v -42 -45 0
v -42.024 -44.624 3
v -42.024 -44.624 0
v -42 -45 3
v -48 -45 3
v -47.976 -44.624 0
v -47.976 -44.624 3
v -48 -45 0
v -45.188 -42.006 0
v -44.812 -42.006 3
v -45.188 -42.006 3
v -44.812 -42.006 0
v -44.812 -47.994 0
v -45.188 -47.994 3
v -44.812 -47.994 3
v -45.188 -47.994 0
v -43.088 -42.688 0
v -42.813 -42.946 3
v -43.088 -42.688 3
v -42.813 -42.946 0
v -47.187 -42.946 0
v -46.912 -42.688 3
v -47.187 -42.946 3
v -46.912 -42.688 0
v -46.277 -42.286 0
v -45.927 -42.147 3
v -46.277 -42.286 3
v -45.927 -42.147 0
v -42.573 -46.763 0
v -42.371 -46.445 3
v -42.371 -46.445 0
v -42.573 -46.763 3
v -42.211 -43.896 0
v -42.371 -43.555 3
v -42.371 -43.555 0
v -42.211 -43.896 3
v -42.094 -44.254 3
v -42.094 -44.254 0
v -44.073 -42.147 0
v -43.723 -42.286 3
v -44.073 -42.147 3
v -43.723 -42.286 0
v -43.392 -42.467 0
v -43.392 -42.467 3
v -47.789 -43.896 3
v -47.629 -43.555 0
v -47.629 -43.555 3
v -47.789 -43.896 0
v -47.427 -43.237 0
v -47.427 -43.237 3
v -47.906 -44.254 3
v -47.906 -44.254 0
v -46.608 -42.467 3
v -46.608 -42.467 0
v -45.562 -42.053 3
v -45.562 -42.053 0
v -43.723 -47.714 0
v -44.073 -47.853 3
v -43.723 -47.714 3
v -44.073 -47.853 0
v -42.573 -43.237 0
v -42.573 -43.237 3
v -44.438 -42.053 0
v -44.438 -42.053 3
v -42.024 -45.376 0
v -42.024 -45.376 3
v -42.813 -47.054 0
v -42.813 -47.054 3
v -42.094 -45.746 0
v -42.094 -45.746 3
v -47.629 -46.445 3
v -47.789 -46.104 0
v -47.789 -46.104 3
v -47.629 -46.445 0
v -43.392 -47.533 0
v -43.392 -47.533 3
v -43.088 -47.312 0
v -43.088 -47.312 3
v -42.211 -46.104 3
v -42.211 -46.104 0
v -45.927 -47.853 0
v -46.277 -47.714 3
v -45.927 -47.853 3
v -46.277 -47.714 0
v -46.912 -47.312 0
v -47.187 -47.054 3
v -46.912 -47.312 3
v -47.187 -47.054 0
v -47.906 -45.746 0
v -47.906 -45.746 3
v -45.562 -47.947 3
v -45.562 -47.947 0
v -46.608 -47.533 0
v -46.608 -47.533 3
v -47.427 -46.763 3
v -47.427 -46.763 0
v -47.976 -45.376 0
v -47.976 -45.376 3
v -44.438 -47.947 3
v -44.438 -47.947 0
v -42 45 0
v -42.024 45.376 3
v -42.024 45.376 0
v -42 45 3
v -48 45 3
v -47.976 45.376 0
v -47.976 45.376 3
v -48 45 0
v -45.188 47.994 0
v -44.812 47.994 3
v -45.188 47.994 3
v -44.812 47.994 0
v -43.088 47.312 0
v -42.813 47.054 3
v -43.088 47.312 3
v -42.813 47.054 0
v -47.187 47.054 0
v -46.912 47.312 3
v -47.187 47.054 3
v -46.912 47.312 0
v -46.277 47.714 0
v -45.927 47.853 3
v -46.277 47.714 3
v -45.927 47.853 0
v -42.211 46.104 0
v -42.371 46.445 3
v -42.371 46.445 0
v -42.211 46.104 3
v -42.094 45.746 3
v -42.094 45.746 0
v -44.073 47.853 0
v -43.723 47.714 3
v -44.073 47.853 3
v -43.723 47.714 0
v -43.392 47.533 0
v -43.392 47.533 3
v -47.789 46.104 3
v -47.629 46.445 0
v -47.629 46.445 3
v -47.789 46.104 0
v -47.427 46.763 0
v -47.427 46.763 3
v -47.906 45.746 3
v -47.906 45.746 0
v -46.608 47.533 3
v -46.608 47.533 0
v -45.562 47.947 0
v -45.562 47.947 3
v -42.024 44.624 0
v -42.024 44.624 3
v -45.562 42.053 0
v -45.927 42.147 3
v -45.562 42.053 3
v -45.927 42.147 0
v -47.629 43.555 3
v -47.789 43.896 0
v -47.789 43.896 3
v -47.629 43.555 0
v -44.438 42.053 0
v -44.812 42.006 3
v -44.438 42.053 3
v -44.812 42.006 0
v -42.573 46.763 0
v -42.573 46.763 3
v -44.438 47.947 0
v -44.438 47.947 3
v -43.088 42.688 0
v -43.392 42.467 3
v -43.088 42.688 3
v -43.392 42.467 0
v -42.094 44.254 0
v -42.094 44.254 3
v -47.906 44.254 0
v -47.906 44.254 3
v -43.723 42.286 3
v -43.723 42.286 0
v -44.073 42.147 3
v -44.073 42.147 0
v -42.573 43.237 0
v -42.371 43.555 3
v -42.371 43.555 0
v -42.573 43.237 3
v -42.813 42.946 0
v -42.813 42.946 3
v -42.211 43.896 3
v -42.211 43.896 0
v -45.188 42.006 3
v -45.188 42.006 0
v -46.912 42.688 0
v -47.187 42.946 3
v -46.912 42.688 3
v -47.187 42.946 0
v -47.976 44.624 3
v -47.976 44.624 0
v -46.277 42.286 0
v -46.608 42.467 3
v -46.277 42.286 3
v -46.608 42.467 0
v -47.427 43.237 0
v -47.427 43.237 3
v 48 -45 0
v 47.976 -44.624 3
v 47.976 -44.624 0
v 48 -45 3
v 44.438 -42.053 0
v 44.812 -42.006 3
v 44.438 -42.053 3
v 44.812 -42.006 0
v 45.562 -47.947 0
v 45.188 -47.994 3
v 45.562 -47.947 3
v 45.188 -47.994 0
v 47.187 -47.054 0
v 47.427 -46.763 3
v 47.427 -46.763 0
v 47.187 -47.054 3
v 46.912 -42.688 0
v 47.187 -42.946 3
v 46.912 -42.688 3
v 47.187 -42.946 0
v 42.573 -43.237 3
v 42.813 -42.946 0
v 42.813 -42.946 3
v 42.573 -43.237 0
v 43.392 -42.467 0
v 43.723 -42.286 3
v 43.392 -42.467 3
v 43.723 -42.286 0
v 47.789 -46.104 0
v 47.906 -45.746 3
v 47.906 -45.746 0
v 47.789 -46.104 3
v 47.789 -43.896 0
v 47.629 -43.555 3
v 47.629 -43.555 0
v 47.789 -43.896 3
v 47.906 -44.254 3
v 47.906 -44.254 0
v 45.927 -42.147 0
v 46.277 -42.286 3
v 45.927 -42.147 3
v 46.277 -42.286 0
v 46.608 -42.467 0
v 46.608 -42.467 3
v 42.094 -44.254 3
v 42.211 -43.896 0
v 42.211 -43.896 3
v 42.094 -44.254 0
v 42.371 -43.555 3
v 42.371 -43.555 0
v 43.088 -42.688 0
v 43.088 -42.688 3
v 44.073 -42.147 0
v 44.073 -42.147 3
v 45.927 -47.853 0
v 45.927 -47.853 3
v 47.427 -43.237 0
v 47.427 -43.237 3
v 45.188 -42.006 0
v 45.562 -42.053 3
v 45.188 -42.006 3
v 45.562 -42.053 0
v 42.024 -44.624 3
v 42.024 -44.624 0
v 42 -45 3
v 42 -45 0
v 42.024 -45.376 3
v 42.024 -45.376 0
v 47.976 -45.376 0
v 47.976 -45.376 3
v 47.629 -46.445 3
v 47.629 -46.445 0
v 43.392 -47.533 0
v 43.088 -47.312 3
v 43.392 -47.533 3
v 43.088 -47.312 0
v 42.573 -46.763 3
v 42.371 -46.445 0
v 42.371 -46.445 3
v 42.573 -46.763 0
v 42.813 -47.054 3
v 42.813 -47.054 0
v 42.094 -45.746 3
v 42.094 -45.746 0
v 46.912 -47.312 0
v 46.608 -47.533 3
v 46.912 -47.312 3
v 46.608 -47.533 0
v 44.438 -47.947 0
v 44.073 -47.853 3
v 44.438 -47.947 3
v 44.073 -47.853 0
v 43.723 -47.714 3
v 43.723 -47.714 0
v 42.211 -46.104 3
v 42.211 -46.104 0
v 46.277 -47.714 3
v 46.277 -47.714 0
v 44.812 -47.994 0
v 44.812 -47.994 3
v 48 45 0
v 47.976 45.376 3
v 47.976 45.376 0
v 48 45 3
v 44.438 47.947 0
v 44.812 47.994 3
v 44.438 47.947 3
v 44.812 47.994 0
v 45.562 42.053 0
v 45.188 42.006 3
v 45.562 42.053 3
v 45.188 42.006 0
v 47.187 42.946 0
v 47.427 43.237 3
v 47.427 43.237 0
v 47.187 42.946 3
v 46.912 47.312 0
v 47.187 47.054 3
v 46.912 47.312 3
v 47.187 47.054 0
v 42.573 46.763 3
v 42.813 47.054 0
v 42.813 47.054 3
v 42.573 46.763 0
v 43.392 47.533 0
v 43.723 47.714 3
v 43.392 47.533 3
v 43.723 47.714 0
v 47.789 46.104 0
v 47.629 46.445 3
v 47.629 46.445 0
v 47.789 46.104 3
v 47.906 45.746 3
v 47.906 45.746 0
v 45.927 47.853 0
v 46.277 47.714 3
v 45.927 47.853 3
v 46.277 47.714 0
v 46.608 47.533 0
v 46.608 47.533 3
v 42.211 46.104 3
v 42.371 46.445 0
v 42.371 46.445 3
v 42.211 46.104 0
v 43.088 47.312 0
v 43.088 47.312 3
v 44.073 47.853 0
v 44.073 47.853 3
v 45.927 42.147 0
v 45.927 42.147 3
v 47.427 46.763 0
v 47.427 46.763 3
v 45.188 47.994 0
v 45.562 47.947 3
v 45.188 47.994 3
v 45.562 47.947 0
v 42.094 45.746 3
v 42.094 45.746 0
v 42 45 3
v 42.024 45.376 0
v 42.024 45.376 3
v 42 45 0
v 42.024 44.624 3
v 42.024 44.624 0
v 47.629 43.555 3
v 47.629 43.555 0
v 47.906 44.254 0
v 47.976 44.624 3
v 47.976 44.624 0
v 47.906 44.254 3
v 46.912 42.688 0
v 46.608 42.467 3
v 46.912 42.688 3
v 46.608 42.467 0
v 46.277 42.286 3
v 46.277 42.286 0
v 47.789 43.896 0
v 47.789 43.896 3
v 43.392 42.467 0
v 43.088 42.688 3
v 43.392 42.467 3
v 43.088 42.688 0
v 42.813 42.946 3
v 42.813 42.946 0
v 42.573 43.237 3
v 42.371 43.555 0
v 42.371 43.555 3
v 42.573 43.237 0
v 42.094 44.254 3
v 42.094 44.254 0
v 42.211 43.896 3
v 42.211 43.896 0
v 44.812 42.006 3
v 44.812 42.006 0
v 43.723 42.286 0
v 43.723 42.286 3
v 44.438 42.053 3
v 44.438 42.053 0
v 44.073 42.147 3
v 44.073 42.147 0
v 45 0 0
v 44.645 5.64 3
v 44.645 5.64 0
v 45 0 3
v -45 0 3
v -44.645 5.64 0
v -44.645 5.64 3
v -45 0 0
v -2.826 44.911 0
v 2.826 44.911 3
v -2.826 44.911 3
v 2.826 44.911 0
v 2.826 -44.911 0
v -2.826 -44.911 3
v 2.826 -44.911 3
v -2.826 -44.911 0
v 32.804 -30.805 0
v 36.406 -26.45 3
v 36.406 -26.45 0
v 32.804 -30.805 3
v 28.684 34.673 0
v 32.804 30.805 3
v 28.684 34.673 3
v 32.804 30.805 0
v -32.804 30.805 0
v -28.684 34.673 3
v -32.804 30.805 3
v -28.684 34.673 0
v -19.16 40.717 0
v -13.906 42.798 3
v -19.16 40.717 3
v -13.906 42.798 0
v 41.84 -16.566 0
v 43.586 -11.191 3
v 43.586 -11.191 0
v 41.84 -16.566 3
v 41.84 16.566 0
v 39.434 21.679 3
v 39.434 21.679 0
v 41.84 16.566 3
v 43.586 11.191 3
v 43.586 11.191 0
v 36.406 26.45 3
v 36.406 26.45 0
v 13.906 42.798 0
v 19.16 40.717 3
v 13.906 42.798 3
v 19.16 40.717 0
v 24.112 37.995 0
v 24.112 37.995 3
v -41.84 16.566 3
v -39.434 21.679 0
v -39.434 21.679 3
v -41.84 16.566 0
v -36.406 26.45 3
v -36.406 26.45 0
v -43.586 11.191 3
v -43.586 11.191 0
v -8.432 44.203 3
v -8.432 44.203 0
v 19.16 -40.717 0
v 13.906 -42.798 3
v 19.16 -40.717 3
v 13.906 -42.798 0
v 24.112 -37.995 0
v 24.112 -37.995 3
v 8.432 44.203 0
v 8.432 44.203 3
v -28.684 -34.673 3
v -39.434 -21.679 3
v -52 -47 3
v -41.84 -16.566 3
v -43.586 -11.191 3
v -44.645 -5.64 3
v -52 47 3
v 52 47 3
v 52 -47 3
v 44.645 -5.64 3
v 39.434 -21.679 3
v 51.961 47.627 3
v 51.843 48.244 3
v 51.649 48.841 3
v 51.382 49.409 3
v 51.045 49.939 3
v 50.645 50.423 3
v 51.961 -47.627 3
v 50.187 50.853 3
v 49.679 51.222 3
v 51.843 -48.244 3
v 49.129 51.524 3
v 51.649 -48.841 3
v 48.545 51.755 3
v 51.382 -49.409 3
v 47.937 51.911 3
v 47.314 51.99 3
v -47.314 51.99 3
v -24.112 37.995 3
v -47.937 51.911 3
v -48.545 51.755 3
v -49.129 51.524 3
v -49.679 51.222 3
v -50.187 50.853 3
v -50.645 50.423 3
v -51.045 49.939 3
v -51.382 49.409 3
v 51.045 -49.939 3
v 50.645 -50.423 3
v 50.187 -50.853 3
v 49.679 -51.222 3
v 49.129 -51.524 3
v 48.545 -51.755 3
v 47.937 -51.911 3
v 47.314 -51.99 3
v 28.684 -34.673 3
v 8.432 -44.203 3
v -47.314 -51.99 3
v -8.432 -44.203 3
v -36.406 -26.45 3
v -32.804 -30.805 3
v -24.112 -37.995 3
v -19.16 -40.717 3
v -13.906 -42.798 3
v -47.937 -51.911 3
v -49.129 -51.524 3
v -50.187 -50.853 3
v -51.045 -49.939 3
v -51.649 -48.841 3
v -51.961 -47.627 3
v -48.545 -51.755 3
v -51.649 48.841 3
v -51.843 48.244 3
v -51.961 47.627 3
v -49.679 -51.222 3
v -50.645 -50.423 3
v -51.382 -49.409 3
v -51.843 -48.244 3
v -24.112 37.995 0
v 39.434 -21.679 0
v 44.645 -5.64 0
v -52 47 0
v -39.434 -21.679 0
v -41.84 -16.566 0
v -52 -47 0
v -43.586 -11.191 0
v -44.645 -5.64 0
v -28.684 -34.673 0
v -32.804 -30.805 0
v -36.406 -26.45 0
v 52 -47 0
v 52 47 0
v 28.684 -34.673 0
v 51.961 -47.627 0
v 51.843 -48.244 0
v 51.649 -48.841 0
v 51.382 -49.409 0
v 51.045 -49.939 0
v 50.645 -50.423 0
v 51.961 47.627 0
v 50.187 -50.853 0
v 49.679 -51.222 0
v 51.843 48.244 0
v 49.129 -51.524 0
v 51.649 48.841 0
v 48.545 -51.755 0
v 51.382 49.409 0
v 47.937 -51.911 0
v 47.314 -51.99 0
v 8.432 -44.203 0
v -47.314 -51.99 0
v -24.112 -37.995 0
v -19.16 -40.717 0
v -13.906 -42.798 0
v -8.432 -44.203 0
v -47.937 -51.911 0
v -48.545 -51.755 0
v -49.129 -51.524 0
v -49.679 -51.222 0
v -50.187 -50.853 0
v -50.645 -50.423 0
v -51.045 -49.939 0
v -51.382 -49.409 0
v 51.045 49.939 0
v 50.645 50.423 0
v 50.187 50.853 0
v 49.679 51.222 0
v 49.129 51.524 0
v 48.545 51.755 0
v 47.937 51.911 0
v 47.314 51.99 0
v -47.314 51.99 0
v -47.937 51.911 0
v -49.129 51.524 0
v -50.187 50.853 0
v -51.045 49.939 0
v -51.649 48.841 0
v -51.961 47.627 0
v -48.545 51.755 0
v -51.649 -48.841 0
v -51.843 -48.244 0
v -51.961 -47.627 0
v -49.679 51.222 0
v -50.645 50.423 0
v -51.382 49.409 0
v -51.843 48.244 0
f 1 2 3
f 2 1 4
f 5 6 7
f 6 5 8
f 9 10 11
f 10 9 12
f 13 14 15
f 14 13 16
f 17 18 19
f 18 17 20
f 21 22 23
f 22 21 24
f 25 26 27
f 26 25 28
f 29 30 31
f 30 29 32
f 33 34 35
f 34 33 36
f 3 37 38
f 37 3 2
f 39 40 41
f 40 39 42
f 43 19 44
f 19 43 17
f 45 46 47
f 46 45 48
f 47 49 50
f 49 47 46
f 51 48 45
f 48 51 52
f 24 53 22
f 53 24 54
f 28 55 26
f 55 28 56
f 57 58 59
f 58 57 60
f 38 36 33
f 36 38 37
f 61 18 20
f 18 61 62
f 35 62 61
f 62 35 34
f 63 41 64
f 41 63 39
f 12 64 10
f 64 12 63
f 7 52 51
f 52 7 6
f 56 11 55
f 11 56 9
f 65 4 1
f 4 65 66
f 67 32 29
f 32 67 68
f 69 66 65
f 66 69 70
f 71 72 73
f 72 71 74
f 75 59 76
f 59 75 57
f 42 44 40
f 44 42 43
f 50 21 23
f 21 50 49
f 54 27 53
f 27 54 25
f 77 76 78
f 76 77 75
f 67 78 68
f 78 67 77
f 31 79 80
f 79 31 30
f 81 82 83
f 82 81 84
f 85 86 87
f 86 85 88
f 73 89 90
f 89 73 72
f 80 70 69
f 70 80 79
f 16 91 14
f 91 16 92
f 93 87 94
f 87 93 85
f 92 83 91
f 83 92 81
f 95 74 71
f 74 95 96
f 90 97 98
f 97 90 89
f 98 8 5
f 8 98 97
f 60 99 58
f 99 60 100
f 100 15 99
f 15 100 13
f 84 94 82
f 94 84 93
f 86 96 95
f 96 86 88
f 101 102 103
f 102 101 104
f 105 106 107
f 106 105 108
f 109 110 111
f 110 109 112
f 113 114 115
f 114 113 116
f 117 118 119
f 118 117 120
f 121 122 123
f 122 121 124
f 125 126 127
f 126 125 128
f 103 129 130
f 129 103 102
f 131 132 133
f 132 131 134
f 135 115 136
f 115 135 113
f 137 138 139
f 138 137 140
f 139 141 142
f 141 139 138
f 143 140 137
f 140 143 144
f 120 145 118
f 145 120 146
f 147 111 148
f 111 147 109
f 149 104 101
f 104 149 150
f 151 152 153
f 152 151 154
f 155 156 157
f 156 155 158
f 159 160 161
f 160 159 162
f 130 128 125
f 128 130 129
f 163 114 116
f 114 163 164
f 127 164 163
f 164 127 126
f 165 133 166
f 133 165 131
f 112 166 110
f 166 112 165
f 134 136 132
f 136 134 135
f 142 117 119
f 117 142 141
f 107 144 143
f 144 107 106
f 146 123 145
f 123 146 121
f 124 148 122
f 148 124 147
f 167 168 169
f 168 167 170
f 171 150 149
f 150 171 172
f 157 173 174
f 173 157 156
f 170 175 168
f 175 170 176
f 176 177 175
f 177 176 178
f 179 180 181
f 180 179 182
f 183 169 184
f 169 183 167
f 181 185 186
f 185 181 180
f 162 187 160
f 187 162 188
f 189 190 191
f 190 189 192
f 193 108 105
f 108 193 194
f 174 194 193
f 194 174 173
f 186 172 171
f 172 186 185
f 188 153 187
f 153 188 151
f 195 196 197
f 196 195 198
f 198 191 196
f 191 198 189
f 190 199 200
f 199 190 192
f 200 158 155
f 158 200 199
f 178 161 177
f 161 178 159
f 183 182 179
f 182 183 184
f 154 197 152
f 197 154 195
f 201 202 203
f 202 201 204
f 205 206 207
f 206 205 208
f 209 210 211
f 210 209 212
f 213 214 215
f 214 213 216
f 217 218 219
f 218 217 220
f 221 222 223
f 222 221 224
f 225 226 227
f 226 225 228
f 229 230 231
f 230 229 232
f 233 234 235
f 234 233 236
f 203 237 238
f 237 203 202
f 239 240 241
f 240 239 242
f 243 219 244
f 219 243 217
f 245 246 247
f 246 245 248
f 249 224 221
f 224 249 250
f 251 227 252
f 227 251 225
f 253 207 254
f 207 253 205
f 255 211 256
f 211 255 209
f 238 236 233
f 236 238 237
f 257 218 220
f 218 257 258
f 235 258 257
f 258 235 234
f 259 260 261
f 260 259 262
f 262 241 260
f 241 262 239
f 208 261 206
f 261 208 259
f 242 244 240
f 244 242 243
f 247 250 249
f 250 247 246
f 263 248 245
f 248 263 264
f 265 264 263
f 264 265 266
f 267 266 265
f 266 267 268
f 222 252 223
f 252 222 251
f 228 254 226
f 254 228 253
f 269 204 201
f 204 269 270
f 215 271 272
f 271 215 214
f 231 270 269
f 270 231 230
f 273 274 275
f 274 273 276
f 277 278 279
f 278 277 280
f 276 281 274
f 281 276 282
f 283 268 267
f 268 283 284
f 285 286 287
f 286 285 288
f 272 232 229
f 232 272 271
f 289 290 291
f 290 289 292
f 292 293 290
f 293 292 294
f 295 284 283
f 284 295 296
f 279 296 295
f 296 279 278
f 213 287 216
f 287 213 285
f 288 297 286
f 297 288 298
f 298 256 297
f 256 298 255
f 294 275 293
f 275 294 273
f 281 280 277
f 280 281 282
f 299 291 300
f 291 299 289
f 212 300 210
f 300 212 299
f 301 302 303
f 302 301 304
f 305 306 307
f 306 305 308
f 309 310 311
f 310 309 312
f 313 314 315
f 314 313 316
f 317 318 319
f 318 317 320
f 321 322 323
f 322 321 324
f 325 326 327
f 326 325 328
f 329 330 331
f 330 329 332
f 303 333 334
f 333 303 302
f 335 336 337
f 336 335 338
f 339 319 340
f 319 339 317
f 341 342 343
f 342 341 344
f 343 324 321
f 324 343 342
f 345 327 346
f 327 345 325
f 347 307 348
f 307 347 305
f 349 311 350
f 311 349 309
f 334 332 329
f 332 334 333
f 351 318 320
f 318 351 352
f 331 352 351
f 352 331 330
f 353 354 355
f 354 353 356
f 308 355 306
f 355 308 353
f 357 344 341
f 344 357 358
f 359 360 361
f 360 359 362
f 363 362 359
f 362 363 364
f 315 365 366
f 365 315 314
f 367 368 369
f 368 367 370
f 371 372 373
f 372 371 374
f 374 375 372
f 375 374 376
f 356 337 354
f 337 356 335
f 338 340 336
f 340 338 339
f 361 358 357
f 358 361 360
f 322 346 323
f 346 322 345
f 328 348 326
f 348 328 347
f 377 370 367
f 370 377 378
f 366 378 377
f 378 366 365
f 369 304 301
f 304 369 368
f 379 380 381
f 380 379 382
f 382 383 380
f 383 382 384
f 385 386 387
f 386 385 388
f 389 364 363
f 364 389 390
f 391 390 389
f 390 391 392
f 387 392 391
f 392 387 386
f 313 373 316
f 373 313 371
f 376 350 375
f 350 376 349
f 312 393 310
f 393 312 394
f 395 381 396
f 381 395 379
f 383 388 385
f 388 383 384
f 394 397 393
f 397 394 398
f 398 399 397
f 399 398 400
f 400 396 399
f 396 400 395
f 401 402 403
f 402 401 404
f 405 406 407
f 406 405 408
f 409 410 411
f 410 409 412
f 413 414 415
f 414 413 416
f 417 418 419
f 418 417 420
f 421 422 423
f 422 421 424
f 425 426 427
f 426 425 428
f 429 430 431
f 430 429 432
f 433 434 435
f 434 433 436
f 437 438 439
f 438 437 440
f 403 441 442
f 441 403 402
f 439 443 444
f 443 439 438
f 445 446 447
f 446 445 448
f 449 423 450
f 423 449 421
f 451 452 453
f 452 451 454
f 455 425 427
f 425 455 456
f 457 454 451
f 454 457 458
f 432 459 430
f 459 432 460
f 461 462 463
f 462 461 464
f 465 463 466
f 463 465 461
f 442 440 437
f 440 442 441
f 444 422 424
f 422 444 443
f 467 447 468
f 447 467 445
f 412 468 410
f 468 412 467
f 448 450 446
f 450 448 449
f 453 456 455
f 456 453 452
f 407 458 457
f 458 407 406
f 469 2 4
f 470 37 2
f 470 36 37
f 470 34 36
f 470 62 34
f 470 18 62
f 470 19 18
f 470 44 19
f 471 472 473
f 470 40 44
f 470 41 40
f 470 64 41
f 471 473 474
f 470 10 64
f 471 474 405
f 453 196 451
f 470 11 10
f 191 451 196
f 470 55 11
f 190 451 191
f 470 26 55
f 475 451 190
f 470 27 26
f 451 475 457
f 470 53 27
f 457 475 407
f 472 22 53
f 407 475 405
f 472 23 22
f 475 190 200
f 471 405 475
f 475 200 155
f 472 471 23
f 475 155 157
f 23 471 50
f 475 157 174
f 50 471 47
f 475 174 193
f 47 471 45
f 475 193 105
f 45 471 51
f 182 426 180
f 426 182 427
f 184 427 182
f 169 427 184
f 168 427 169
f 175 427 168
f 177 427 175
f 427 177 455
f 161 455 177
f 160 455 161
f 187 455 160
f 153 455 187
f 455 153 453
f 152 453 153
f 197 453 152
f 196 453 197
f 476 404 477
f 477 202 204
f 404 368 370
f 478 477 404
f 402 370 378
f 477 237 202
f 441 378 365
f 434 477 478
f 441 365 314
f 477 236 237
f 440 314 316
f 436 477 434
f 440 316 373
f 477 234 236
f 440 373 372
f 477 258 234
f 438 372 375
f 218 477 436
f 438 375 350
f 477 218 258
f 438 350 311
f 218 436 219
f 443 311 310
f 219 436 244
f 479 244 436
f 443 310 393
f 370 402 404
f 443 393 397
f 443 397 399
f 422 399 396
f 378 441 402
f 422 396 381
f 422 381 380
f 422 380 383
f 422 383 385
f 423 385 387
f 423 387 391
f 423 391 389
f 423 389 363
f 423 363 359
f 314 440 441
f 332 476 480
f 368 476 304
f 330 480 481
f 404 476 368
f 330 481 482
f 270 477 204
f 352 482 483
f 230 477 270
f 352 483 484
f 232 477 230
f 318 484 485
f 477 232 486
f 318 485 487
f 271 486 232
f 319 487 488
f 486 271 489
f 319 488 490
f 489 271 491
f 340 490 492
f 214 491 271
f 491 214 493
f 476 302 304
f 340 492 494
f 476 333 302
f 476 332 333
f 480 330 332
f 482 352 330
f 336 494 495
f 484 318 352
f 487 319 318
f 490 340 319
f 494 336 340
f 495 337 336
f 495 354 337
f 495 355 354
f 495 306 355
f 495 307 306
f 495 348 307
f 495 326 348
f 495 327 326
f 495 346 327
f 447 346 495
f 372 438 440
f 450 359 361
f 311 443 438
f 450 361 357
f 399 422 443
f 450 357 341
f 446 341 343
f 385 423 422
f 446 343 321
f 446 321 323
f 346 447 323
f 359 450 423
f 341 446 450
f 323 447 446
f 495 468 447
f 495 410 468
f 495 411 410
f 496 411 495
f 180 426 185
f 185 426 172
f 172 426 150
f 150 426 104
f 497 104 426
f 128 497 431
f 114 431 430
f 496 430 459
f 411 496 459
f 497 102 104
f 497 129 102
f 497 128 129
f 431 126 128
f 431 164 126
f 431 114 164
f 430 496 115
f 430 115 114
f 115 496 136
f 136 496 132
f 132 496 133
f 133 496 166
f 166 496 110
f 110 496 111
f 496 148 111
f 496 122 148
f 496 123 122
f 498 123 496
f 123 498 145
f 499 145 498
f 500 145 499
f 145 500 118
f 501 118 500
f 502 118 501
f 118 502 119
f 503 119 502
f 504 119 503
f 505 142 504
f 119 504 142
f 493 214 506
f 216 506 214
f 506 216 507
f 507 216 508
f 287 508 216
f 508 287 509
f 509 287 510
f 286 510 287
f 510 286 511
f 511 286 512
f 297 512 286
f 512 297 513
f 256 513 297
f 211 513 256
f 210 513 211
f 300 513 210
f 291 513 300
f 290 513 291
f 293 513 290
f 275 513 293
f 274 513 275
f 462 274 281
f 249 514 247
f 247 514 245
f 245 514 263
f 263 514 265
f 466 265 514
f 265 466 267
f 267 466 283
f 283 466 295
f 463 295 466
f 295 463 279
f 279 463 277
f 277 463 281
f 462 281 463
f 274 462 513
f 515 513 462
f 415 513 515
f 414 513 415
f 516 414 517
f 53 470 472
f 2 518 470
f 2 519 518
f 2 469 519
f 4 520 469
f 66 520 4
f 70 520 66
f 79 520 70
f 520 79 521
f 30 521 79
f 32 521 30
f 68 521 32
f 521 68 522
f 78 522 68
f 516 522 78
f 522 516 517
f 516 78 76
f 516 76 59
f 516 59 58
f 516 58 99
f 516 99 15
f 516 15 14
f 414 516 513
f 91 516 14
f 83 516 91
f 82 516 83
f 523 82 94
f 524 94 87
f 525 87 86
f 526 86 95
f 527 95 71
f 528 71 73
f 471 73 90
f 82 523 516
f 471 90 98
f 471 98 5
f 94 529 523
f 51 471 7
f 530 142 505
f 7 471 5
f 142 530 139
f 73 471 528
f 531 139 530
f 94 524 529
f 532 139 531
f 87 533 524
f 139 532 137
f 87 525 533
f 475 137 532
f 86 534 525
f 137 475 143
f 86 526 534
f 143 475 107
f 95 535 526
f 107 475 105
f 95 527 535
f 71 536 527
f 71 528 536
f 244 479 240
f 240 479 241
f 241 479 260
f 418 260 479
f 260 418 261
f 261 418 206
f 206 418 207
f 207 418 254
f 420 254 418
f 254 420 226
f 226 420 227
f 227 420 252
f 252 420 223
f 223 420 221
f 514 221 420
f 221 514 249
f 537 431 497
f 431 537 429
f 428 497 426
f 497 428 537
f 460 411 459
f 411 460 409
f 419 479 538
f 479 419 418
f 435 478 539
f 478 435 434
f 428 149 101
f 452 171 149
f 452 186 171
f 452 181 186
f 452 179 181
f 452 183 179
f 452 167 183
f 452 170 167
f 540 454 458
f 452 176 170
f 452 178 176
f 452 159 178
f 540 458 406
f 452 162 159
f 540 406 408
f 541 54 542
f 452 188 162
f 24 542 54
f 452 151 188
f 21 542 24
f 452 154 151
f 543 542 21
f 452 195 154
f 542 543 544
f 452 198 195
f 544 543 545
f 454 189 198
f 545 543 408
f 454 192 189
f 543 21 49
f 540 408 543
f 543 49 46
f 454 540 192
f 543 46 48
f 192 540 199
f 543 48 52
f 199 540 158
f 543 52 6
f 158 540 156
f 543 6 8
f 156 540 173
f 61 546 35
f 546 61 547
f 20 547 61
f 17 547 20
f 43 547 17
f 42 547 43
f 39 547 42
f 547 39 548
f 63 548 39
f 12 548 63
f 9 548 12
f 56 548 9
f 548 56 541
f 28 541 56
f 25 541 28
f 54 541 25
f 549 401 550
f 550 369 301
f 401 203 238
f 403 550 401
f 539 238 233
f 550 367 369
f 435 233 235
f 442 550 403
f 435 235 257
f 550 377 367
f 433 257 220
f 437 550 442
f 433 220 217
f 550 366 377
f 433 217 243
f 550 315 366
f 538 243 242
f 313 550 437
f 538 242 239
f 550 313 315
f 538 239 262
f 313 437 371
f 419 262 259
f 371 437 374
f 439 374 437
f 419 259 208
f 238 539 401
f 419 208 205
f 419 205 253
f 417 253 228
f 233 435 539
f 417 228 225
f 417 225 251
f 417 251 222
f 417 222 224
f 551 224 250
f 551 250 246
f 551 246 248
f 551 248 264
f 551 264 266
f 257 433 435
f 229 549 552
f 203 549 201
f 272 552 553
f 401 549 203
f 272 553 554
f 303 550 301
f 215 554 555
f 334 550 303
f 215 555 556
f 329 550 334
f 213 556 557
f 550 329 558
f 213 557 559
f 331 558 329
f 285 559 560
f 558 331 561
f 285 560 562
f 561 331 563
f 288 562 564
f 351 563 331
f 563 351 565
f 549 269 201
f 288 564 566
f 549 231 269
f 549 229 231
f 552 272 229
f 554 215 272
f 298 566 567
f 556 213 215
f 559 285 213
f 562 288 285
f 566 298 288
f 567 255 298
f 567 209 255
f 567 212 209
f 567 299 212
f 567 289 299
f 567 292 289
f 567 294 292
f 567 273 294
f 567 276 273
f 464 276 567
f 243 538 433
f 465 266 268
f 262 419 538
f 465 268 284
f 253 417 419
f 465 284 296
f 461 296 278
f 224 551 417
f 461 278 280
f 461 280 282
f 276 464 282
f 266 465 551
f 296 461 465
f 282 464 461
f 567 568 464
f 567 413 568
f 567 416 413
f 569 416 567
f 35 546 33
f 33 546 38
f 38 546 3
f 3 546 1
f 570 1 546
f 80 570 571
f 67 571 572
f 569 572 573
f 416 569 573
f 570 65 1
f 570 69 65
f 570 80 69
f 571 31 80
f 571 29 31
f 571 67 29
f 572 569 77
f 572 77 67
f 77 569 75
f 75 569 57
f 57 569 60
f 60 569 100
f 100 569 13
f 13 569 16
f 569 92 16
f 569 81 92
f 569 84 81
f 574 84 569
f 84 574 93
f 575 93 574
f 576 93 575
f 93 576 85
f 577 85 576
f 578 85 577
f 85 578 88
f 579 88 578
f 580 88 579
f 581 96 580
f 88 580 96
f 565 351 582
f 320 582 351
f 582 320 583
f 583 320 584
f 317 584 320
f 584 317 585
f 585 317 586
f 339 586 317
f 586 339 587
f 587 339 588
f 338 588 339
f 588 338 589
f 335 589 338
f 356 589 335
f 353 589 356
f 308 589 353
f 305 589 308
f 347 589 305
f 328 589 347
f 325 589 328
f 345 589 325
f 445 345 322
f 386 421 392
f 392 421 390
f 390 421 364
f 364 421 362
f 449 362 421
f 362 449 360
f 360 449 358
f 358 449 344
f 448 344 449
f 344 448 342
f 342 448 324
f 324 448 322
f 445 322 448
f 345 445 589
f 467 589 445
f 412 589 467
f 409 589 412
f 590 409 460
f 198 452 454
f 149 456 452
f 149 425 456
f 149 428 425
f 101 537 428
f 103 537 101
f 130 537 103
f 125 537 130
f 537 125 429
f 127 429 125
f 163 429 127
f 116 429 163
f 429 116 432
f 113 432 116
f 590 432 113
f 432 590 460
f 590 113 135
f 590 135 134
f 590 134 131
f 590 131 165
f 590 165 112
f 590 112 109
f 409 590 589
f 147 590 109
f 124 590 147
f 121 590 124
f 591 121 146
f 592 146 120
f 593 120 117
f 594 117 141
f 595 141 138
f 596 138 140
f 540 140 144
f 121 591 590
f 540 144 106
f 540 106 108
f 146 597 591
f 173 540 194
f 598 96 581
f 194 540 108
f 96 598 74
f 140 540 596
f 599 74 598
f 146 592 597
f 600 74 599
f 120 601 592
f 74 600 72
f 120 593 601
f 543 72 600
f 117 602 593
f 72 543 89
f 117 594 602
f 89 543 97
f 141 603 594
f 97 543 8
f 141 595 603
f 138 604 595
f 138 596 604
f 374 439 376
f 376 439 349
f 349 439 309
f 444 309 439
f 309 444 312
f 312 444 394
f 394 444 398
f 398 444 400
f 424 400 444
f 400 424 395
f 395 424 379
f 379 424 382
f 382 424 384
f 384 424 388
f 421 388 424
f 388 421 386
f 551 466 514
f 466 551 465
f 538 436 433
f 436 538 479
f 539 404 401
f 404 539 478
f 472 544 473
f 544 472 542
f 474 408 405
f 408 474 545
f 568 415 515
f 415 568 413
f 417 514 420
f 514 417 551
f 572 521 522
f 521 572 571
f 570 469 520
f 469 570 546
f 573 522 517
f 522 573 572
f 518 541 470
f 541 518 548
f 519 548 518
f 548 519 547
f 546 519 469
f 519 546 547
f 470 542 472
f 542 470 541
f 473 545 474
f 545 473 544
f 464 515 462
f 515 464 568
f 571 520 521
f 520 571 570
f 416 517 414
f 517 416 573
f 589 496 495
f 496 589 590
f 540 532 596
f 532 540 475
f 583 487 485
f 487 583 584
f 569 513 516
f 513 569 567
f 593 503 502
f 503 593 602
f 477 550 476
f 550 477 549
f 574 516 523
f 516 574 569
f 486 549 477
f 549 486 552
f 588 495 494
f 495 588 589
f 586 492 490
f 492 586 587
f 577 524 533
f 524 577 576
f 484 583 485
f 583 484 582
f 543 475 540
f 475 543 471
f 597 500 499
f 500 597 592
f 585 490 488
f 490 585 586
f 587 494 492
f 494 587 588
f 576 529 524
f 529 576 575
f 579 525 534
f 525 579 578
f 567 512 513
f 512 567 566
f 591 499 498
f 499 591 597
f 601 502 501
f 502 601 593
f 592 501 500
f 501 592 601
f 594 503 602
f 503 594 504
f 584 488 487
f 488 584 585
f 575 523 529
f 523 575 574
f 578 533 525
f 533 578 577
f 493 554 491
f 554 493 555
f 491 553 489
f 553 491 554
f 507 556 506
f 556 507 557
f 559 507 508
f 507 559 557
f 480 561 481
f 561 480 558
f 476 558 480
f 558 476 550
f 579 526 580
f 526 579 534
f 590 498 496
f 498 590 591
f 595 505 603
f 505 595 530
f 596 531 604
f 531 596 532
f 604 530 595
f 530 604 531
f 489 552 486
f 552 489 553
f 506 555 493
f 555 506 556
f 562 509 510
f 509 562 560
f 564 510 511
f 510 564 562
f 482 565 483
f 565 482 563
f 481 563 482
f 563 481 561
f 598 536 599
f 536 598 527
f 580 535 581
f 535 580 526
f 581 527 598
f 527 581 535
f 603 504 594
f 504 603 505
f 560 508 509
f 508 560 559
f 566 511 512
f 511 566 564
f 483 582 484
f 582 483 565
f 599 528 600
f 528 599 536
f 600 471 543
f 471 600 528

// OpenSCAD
$fn = 50;


difference() {
	union() {
		hull() {
			translate(v = [-47.0000000000, 47.0000000000, 0]) {
				cylinder(h = 3, r = 5);
			}
			translate(v = [47.0000000000, 47.0000000000, 0]) {
				cylinder(h = 3, r = 5);
			}
			translate(v = [-47.0000000000, -47.0000000000, 0]) {
				cylinder(h = 3, r = 5);
			}
			translate(v = [47.0000000000, -47.0000000000, 0]) {
				cylinder(h = 3, r = 5);
			}
		}
	}
	union() {
		#translate(v = [-45.0000000000, -45.0000000000, -100.0000000000]) {
			cylinder(h = 200, r = 3.0000000000);
		}
		#translate(v = [-45.0000000000, 45.0000000000, -100.0000000000]) {
			cylinder(h = 200, r = 3.0000000000);
		}
		#translate(v = [45.0000000000, -45.0000000000, -100.0000000000]) {
			cylinder(h = 200, r = 3.0000000000);
		}
		#translate(v = [45.0000000000, 45.0000000000, -100.0000000000]) {
			cylinder(h = 200, r = 3.0000000000);
		}
		#cylinder(h = 3, r = 45.0000000000);
	}
}
